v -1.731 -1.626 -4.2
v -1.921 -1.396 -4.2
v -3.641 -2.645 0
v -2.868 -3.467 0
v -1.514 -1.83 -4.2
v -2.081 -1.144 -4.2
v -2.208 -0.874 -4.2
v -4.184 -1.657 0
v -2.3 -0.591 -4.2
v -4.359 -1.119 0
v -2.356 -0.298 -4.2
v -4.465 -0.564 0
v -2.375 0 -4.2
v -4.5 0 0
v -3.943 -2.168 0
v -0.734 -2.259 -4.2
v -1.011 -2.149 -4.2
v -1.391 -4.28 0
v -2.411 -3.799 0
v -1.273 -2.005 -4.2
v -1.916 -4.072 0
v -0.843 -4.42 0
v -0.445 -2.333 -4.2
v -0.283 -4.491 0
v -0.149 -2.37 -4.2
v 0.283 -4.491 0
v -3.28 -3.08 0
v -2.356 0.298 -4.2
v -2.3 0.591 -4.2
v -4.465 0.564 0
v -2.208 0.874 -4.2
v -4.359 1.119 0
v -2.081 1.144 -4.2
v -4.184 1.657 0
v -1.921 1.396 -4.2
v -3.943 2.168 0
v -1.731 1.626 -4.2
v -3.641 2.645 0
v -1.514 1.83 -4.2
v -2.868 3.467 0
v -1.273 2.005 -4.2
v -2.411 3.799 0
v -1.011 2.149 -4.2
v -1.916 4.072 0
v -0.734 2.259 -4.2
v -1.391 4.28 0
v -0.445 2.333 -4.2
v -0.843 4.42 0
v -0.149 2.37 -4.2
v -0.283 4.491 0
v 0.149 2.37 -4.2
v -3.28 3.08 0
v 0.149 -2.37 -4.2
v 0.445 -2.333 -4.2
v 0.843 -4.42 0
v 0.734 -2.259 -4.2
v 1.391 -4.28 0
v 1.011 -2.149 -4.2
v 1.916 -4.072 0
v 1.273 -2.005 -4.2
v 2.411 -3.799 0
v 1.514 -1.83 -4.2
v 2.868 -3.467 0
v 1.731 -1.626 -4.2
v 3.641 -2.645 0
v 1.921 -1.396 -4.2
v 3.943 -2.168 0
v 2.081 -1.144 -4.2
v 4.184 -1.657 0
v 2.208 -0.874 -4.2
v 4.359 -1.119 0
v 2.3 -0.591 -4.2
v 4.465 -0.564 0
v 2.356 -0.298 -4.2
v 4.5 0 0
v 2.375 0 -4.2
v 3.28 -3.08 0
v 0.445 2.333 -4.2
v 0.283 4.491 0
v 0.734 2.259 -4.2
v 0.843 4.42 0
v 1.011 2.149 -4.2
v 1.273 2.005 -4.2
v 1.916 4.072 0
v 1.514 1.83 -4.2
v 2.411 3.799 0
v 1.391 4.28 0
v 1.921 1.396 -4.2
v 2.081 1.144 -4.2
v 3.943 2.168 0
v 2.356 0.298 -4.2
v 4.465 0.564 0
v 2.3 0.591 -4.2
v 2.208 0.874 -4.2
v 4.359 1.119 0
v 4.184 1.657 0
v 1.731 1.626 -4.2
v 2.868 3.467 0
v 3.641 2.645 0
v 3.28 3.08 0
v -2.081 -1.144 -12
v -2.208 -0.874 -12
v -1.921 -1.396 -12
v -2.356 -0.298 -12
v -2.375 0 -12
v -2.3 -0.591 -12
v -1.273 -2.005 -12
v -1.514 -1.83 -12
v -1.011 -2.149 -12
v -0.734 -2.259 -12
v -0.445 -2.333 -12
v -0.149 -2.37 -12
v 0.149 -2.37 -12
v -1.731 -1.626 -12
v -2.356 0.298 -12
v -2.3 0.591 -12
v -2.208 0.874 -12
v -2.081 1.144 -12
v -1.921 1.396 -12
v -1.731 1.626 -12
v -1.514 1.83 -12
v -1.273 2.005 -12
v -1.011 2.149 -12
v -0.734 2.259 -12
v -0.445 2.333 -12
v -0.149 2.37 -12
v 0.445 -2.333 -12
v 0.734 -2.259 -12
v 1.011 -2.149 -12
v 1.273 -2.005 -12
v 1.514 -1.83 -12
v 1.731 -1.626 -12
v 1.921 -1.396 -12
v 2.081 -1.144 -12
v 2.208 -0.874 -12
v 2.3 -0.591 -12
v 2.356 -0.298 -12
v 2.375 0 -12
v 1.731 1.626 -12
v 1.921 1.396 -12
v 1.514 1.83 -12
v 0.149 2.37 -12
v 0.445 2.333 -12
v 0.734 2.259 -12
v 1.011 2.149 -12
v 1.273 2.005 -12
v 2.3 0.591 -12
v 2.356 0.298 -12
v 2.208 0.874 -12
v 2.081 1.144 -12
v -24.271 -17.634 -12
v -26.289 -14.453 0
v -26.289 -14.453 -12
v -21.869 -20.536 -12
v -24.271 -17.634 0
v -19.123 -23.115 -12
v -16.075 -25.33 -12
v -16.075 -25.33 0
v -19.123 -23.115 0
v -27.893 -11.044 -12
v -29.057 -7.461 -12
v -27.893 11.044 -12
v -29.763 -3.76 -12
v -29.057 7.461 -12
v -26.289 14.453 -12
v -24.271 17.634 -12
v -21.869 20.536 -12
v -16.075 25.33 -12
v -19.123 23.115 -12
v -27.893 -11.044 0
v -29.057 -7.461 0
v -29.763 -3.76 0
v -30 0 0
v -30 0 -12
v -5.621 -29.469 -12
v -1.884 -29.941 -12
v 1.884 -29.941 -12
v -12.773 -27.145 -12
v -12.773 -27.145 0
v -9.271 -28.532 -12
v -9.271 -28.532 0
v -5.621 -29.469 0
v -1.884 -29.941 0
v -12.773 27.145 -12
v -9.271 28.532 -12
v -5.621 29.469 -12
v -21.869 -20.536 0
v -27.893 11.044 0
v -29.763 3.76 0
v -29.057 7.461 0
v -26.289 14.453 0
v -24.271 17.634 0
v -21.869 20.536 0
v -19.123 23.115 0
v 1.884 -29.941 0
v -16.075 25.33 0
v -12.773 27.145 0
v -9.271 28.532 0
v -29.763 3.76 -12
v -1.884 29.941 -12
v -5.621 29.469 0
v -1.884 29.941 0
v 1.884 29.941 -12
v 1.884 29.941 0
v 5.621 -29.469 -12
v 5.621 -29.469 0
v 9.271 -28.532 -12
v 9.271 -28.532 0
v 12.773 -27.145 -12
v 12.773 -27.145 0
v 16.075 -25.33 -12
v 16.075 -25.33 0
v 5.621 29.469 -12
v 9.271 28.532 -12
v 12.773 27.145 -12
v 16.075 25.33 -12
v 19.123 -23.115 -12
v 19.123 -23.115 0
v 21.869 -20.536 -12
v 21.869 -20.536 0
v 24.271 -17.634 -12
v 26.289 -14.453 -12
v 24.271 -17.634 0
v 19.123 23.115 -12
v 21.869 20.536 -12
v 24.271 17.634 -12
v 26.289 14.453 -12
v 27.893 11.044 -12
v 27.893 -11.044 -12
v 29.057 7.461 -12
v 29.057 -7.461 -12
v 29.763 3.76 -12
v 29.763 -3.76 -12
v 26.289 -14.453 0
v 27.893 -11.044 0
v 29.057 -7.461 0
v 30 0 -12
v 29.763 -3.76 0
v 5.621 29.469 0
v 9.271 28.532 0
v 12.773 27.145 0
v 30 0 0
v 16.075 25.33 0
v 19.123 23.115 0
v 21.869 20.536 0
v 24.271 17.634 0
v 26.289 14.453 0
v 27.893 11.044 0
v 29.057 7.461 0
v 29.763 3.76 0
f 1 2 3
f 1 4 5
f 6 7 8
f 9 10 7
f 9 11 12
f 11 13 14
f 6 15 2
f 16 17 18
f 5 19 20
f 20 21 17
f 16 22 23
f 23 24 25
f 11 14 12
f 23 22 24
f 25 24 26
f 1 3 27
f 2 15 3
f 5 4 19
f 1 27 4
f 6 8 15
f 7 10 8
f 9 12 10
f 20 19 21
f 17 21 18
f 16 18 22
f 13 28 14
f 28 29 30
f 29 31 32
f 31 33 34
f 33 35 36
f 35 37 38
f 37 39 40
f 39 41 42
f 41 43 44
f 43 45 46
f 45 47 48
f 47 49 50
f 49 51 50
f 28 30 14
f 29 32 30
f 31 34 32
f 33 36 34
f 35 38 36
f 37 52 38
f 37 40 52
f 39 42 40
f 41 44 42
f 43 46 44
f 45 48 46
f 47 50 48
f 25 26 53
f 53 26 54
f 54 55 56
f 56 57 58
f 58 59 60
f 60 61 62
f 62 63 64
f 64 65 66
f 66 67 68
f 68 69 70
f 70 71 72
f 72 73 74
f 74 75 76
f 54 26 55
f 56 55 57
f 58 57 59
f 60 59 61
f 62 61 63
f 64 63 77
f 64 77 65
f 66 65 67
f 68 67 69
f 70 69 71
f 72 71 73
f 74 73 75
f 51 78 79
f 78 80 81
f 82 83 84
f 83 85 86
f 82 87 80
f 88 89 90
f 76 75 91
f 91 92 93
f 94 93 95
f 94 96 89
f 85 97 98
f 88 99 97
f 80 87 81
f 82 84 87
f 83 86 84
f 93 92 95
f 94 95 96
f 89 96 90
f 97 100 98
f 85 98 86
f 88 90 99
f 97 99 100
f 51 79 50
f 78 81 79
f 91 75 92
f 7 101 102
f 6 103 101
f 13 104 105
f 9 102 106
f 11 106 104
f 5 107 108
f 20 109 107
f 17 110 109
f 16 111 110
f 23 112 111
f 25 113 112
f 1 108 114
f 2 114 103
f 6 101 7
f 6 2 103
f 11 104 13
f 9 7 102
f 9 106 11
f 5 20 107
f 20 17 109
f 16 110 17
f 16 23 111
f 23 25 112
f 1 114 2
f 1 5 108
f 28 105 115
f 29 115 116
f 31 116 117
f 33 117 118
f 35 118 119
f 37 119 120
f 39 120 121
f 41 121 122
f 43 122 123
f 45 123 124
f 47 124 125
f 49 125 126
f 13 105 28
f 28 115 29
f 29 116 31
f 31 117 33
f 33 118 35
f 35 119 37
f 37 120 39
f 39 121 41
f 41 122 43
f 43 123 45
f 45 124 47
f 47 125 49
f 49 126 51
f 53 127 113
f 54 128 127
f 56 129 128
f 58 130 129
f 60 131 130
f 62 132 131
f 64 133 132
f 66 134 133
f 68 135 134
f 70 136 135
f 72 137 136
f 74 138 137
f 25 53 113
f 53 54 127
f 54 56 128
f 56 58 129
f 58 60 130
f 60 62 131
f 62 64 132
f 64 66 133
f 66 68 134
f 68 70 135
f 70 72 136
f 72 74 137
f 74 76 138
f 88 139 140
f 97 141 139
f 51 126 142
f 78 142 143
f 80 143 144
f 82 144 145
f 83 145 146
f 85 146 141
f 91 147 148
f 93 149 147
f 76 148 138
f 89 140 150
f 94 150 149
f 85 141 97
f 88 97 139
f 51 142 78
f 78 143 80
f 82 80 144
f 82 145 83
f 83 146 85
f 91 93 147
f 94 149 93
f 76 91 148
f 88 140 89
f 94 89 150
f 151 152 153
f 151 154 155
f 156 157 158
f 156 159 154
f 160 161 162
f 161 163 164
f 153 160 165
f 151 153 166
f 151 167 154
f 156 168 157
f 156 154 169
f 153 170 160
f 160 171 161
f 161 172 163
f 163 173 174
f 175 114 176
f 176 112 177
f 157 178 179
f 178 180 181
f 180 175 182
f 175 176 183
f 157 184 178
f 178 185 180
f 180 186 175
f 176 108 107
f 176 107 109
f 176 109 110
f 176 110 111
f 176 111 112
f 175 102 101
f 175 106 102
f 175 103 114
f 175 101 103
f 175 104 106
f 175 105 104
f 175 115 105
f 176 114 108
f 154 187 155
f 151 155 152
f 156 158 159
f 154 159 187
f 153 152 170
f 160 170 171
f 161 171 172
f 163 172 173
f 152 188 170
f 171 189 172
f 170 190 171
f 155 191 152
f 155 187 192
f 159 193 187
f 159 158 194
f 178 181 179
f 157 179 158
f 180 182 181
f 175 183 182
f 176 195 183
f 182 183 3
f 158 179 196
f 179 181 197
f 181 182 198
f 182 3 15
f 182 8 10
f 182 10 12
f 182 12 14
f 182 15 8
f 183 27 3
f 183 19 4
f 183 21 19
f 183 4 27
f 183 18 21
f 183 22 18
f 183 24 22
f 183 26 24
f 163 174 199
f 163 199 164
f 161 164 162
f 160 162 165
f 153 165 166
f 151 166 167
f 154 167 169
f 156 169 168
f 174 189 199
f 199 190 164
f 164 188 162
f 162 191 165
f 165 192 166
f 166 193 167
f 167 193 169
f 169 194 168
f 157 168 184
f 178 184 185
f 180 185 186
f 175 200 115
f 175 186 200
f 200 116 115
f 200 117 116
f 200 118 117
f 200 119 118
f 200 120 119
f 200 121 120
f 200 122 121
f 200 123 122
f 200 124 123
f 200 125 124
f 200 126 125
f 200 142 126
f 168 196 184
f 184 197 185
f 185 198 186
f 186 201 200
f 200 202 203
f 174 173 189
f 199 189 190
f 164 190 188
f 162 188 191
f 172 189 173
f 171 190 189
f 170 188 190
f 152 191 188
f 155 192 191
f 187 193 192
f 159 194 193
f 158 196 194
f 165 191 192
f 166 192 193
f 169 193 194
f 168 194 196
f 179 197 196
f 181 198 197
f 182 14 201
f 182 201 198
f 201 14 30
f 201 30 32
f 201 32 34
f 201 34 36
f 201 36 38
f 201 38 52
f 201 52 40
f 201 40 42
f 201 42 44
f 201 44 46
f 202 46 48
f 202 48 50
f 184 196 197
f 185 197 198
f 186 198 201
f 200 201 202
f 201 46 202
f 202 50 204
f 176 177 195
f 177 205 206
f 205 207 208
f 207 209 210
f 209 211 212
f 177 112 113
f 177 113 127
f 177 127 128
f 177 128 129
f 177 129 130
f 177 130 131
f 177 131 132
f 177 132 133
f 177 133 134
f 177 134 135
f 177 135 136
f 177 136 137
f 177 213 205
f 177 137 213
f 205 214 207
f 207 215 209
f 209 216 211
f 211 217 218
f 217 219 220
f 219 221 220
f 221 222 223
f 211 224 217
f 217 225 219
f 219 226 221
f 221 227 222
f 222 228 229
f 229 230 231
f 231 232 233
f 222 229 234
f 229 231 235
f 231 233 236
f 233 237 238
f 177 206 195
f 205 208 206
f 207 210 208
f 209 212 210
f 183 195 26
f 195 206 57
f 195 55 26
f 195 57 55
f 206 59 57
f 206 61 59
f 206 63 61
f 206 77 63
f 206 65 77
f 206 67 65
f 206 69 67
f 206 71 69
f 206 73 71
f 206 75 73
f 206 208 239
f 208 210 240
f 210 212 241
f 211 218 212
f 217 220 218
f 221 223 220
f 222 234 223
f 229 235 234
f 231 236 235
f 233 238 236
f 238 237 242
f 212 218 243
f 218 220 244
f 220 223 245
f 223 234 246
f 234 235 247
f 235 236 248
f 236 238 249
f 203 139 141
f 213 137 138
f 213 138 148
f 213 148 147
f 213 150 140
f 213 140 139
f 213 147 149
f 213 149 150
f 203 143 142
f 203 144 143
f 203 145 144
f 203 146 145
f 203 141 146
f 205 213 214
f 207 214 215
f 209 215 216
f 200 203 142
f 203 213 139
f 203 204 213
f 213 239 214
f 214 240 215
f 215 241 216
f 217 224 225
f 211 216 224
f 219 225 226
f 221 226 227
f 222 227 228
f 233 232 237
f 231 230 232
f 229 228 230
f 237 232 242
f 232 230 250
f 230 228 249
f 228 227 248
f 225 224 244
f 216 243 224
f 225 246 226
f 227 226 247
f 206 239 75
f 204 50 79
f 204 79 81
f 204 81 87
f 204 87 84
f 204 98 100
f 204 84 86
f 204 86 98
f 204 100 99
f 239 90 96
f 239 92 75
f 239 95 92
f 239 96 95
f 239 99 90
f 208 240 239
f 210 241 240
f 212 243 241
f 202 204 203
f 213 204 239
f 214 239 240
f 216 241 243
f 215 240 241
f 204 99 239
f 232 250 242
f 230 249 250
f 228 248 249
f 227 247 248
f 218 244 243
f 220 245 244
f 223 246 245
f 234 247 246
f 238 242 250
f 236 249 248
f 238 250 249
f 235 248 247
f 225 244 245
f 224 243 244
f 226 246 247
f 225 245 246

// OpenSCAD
$fn = 50;

difference() {
	union() {
		translate(v = [0, 0, -12.0]) {
			cylinder(h = 12, r = 30.0);
		}
	}
	union() {
		translate(v = [0, 0, 0]) {
			rotate(a = [0, 0, 0]) {
				difference() {
					union() {
						translate(v = [0, 0, -15.0]) {
							cylinder(h = 15, r = 2.25);
						}
						translate(v = [0, 0, -4.2]) {
							cylinder(h = 4.2, r1 = 2.375, r2 = 4.5);
						}
						translate(v = [0, 0, -15.0]) {
							cylinder(h = 15, r = 2.375);
						}
						translate(v = [0, 0, -15.0]) {
							cylinder(h = 15, r = 2.25);
						}
					}
					union();
				}
			}
		}
	}
}
